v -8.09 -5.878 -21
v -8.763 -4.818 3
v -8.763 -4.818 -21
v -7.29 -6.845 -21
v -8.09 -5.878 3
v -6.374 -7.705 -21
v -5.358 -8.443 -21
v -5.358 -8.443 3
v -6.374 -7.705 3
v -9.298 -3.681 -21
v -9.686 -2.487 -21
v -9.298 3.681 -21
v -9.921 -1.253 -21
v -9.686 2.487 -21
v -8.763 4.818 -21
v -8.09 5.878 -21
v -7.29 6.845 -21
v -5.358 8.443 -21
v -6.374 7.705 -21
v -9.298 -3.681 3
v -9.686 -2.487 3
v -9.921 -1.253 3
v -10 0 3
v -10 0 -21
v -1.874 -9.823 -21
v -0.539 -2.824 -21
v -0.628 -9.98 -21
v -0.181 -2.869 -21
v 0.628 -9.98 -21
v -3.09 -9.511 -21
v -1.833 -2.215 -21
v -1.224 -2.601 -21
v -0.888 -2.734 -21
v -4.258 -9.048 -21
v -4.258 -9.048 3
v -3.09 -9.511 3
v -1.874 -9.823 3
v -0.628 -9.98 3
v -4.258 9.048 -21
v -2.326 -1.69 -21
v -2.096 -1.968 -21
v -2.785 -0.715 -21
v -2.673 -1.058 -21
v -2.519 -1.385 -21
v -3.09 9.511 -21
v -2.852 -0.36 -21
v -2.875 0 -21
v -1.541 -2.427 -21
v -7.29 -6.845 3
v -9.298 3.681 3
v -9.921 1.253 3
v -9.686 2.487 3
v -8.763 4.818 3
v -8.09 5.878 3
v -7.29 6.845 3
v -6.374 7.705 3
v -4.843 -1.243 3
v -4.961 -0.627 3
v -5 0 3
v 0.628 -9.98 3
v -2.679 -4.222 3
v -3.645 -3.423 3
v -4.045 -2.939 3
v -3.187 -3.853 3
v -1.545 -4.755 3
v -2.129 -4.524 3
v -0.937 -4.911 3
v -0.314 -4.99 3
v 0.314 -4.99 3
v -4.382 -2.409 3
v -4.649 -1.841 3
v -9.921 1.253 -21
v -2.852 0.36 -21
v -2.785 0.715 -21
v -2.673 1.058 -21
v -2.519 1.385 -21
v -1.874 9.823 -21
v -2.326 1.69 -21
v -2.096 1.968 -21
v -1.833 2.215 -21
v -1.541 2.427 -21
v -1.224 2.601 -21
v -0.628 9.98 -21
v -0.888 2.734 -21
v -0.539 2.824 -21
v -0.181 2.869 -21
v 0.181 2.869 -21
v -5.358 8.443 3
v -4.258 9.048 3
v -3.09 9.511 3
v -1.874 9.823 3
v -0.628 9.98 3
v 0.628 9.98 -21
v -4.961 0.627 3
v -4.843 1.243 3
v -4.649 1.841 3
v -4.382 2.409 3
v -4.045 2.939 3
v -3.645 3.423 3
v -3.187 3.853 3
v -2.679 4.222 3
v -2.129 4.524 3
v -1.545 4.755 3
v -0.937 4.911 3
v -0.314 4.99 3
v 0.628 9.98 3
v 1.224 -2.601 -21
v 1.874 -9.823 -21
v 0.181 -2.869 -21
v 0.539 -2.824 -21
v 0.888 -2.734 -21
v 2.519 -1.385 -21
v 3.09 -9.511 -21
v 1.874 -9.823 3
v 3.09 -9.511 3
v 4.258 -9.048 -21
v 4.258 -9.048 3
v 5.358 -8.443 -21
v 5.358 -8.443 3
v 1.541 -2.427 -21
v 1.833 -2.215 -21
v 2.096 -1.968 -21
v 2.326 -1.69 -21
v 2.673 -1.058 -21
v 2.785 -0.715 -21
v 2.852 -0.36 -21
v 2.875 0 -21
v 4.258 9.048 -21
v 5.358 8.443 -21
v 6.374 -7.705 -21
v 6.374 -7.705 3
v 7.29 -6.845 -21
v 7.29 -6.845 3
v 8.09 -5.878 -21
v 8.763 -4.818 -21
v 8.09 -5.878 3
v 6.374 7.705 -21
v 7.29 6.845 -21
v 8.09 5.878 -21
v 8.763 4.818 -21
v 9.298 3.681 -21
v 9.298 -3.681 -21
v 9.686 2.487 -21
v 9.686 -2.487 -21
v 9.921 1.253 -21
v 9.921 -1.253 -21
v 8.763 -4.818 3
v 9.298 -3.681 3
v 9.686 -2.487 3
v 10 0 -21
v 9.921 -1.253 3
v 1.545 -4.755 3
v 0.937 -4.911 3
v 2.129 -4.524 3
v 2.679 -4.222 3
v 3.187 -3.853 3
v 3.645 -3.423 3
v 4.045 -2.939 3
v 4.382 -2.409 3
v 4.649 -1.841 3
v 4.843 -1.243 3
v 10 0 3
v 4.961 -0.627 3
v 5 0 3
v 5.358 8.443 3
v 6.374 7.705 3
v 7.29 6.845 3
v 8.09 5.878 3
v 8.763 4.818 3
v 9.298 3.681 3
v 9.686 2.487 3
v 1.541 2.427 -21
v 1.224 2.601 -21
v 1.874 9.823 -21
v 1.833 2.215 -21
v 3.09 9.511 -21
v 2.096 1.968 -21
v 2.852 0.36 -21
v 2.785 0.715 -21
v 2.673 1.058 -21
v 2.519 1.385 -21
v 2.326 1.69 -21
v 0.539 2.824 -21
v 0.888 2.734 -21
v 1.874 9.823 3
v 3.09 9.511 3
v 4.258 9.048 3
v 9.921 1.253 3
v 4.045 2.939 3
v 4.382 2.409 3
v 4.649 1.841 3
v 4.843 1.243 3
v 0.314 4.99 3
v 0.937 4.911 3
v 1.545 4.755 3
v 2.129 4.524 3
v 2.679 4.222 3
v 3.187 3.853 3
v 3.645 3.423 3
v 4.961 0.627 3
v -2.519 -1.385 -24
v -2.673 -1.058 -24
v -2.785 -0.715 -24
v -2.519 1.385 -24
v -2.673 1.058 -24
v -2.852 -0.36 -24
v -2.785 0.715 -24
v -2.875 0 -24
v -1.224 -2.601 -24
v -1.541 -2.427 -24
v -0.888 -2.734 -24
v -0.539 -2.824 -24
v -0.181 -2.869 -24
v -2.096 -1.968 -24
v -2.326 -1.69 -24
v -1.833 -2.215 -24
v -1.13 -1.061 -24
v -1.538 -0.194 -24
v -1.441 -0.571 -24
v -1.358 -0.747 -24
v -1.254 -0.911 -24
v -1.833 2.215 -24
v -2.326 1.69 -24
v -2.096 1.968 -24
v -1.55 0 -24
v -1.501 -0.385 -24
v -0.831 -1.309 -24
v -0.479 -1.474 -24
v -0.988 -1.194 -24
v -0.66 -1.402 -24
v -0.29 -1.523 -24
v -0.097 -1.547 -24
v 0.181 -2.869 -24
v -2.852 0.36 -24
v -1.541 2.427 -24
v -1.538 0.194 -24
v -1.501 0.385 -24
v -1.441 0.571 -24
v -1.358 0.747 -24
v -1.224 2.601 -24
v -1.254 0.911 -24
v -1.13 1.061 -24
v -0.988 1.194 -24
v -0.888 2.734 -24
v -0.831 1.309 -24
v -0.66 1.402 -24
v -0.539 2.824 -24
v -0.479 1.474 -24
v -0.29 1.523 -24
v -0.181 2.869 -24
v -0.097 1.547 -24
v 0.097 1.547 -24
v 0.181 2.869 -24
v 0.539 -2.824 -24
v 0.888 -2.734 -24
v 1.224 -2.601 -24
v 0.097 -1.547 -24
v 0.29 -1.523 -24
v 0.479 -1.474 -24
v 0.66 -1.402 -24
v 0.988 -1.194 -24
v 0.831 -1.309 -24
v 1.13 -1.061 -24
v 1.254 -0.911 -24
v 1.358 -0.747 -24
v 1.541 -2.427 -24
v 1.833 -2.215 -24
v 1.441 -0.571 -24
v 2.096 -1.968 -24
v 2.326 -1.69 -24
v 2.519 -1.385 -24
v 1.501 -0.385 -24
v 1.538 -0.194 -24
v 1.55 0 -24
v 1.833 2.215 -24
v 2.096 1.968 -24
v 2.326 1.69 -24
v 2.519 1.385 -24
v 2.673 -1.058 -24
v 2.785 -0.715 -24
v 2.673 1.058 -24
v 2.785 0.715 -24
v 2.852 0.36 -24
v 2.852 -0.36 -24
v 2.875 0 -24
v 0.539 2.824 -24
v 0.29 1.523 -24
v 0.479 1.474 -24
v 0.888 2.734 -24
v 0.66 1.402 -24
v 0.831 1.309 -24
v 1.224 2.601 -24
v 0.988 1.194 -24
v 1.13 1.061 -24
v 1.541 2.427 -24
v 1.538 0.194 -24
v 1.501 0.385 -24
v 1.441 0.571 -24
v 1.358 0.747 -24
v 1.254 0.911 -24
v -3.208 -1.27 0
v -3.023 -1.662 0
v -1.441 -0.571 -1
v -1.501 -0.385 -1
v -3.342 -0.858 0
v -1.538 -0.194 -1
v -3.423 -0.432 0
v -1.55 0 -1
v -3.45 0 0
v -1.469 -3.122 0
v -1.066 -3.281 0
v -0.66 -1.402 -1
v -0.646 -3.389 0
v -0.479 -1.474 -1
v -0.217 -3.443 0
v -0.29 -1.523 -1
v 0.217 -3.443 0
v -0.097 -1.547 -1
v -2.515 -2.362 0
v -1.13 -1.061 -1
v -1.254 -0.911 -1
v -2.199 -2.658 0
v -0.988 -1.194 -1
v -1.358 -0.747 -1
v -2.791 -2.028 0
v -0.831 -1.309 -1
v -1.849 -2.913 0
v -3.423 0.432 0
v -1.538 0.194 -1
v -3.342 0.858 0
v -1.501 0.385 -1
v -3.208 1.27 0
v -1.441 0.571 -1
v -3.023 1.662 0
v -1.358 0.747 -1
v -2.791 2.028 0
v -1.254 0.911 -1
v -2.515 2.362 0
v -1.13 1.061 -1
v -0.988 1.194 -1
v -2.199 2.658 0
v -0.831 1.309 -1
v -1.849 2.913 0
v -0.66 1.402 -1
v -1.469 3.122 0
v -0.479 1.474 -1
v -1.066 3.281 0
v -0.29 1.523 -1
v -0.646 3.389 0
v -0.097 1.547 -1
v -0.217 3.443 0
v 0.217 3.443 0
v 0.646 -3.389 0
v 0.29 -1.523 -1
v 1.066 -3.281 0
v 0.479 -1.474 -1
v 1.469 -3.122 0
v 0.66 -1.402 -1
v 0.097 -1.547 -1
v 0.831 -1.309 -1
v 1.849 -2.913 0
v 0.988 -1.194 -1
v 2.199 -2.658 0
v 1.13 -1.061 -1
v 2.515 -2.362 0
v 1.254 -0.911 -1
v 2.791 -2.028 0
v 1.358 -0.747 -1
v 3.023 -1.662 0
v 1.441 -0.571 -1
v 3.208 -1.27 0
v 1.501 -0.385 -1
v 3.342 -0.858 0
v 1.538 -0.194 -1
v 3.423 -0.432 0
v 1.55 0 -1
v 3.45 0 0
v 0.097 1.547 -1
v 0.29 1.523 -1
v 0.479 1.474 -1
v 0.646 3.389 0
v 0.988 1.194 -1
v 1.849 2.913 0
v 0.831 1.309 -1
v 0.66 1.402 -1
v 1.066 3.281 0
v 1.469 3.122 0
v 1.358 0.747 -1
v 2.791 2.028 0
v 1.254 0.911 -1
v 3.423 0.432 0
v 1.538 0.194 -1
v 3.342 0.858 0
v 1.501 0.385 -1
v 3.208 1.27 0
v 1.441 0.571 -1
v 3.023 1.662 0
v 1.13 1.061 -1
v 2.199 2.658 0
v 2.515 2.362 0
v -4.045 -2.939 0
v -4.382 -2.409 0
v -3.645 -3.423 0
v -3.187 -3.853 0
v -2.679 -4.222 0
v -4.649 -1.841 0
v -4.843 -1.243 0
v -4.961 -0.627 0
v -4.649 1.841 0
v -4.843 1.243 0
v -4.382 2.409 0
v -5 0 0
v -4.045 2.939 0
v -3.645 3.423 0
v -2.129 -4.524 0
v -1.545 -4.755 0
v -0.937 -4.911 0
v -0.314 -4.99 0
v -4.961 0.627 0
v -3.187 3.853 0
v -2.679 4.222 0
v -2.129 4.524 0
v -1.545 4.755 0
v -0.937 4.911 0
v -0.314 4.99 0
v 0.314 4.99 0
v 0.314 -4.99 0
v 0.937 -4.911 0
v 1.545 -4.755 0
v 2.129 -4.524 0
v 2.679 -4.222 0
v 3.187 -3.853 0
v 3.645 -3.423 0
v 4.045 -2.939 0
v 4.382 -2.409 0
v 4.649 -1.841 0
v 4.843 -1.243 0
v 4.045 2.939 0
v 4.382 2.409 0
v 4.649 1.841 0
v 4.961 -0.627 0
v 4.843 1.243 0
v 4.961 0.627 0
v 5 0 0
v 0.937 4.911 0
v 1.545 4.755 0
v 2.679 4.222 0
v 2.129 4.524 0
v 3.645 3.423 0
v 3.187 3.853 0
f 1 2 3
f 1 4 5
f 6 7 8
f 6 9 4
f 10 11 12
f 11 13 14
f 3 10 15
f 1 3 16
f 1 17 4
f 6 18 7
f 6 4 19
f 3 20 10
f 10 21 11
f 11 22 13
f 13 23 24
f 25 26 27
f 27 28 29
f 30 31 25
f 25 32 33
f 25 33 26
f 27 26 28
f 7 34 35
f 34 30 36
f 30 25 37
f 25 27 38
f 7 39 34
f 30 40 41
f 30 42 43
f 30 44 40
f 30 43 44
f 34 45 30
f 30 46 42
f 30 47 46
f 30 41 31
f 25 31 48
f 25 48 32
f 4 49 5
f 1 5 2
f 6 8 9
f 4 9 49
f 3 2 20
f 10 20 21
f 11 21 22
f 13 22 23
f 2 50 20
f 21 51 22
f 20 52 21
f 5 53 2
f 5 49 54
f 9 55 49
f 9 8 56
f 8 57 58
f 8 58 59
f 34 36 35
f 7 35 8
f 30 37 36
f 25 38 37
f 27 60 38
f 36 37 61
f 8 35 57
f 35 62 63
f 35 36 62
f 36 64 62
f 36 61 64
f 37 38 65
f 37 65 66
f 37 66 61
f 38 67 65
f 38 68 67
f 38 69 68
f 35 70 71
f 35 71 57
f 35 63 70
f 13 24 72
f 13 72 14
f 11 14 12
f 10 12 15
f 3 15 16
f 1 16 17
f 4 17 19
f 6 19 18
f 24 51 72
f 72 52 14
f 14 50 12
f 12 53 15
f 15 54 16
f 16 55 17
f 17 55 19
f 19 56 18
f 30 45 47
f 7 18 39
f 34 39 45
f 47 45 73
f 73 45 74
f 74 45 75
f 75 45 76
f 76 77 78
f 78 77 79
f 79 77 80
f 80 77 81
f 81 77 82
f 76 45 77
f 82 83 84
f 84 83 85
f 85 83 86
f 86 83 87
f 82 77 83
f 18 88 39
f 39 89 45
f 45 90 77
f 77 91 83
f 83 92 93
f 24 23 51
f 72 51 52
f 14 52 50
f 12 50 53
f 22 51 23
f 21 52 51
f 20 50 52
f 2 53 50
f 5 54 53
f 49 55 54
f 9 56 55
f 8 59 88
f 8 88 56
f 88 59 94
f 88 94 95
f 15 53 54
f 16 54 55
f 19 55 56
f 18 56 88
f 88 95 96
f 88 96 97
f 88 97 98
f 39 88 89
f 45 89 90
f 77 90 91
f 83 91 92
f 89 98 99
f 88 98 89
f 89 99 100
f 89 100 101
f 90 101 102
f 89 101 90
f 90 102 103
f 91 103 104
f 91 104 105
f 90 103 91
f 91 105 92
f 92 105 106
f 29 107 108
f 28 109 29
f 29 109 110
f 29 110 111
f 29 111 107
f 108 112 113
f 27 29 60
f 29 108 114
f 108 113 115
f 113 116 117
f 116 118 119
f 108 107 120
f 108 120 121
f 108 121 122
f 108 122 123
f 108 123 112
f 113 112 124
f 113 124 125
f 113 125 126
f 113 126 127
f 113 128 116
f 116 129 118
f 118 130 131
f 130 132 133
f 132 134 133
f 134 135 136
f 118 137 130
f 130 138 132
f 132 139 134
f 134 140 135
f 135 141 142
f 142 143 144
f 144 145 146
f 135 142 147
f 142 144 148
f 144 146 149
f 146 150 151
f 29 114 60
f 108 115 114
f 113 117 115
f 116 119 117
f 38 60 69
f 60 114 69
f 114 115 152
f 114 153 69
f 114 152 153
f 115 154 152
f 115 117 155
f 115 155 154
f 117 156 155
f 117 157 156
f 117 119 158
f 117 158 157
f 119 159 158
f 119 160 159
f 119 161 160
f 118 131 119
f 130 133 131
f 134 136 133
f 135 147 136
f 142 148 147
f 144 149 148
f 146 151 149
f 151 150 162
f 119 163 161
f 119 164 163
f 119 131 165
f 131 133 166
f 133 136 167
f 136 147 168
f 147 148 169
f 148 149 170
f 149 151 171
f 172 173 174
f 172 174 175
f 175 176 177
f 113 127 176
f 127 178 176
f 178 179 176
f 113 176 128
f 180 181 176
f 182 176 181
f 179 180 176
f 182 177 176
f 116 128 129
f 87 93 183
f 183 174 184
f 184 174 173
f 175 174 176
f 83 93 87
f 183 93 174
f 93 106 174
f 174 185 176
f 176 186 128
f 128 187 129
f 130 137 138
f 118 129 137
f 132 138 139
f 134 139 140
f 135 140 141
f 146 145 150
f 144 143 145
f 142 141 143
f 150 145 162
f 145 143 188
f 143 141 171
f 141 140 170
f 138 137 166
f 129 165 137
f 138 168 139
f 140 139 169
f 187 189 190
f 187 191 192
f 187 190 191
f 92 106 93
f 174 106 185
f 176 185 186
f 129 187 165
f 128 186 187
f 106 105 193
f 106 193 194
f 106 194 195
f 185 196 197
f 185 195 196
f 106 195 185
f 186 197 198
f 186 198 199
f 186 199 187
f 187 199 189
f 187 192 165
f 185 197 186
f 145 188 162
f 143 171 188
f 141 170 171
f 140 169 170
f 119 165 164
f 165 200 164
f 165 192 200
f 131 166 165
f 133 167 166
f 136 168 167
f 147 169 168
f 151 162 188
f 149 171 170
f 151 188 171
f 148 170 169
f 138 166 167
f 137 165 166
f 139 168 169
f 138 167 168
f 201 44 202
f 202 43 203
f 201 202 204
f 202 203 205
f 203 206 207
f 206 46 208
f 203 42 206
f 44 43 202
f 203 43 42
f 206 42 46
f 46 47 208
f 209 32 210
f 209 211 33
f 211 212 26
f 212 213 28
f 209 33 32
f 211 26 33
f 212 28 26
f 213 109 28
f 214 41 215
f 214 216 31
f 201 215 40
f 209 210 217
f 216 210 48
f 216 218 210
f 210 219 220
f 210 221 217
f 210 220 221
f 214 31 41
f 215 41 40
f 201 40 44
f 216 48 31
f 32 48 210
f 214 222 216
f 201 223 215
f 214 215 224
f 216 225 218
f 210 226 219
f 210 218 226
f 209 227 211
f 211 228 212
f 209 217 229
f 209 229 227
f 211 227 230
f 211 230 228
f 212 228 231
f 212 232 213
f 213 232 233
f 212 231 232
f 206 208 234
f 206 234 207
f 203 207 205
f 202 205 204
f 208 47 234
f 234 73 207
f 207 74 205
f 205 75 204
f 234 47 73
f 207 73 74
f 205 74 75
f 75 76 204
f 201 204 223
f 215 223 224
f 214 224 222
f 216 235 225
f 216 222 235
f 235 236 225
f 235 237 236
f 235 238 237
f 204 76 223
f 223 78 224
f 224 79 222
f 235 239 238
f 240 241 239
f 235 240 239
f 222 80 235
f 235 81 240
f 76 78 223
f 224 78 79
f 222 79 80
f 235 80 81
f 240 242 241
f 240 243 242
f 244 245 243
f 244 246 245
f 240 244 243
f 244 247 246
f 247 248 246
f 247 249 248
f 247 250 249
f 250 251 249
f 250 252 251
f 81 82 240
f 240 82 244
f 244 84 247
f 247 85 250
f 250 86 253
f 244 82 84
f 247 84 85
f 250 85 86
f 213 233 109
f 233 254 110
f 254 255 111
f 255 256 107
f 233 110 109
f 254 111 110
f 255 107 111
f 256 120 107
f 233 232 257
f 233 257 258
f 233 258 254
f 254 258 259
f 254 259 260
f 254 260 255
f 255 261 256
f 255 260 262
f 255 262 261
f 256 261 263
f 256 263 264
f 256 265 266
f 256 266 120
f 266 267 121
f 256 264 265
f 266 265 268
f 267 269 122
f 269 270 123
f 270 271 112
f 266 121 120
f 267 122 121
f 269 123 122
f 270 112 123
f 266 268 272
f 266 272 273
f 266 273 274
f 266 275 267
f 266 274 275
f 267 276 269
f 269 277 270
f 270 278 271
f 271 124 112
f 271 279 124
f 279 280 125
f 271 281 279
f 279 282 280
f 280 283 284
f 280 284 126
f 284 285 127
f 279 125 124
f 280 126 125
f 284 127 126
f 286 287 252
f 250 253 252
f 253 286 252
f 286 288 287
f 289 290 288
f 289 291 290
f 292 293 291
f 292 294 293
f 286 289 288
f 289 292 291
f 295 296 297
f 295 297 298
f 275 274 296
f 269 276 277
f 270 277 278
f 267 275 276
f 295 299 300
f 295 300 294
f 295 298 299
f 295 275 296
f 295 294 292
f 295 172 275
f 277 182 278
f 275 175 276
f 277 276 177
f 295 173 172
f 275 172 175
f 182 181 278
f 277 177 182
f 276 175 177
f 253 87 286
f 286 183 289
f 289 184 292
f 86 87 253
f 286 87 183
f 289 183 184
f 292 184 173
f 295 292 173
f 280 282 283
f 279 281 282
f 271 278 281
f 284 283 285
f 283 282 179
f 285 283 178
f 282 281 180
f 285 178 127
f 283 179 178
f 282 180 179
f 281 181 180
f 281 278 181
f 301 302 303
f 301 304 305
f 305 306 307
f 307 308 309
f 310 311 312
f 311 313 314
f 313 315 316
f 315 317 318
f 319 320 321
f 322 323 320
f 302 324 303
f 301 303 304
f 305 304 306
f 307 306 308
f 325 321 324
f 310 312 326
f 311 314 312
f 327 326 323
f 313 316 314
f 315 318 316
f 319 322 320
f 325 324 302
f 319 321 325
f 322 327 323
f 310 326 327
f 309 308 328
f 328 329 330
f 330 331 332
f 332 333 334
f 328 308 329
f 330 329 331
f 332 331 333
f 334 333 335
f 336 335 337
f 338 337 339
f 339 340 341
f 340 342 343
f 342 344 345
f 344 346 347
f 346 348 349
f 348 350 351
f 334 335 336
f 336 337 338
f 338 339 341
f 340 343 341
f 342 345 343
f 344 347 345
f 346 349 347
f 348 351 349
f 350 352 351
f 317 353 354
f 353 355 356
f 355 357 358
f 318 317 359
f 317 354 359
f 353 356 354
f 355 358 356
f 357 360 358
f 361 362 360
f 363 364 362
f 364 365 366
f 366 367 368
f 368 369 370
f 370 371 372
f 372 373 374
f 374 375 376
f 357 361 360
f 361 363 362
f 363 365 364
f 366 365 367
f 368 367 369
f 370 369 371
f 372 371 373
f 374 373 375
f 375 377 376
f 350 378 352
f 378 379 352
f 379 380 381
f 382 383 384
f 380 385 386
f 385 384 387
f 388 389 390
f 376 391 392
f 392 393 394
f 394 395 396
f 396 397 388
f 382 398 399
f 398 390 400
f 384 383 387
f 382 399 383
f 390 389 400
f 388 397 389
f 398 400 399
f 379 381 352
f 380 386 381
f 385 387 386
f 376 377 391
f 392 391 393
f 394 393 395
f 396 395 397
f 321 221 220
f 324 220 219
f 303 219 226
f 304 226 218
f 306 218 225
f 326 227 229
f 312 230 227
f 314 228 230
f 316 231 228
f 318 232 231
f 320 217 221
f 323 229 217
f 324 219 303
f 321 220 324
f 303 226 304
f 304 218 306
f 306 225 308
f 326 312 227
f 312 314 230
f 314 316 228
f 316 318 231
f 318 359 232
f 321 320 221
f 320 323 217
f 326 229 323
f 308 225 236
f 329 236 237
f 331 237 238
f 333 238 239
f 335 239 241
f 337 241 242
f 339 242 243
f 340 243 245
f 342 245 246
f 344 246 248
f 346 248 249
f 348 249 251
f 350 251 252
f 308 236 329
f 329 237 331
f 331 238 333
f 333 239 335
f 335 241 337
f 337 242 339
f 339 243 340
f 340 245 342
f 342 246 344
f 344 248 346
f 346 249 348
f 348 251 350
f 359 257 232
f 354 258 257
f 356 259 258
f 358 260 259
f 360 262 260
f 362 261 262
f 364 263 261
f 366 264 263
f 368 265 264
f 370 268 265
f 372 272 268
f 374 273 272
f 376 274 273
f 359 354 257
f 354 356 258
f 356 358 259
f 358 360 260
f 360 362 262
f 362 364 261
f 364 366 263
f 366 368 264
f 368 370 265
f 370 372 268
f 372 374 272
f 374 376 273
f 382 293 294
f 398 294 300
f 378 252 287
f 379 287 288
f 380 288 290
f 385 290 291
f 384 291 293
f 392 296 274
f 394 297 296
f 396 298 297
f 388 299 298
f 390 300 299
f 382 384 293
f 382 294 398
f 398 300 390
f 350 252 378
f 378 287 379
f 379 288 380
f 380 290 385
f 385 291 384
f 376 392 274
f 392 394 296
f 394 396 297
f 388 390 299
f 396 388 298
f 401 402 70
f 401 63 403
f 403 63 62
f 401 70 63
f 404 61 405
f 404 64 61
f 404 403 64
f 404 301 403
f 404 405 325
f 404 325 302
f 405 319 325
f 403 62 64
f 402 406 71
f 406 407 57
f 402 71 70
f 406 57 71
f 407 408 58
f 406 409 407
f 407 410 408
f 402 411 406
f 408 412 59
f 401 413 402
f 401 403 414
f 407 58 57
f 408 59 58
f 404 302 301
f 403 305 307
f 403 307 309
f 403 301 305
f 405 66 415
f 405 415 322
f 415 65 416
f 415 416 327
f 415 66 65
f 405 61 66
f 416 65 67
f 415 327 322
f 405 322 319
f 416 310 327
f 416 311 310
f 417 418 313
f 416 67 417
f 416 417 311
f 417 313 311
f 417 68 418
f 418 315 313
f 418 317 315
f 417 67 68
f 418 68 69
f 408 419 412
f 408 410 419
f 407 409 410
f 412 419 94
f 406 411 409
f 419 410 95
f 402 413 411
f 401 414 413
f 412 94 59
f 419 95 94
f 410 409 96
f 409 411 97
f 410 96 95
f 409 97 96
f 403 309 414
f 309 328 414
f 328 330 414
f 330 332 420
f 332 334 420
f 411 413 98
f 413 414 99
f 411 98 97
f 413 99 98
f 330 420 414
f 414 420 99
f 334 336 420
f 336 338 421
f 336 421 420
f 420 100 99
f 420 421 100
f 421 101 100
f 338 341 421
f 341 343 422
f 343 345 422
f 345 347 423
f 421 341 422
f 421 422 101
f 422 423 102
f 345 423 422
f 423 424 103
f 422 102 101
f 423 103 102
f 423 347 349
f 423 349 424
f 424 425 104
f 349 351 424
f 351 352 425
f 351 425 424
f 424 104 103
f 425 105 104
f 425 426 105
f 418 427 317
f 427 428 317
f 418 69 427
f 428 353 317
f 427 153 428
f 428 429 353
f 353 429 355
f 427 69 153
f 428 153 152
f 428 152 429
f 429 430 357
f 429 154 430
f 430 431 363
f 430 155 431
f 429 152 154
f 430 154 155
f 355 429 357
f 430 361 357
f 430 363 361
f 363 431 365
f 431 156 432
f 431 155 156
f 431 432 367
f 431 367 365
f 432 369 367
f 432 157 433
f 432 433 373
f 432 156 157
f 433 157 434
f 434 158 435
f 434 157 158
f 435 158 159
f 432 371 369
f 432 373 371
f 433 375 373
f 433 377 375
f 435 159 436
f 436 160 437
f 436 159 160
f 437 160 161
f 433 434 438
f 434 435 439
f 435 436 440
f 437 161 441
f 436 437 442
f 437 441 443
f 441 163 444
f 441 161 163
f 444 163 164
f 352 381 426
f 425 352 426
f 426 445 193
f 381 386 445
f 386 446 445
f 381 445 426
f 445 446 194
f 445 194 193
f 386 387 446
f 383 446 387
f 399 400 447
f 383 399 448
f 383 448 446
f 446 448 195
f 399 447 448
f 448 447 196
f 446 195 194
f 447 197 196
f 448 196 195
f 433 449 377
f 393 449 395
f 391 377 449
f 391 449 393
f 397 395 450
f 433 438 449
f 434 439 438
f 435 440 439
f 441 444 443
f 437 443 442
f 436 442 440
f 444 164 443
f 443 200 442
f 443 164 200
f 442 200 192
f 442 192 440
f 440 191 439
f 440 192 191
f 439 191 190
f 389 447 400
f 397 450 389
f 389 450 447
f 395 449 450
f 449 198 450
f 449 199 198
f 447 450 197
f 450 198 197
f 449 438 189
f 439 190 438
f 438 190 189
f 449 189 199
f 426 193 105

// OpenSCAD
$fn = 50;

difference() {
	union() {
		translate(v = [0, 0, -21.0]) {
			cylinder(h = 24, r = 10.0);
		}
		#translate(v = [0, 0, -24.0]) {
			cylinder(h = 24, r = 2.875);
		}
	}
	union() {
		translate(v = [0, 0, 0]) {
			rotate(a = [0, 0, 0]) {
				difference() {
					union() {
						translate(v = [0, 0, -24.0]) {
							cylinder(h = 24, r = 1.25);
						}
						translate(v = [0, 0, -1.0]) {
							cylinder(h = 1.0, r1 = 1.55, r2 = 3.45);
						}
						translate(v = [0, 0, -24.0]) {
							cylinder(h = 24, r = 1.55);
						}
						translate(v = [0, 0, -24.0]) {
							cylinder(h = 24, r = 1.25);
						}
					}
					union();
				}
			}
		}
		#cylinder(h = 3, r = 5.0);
	}
}
